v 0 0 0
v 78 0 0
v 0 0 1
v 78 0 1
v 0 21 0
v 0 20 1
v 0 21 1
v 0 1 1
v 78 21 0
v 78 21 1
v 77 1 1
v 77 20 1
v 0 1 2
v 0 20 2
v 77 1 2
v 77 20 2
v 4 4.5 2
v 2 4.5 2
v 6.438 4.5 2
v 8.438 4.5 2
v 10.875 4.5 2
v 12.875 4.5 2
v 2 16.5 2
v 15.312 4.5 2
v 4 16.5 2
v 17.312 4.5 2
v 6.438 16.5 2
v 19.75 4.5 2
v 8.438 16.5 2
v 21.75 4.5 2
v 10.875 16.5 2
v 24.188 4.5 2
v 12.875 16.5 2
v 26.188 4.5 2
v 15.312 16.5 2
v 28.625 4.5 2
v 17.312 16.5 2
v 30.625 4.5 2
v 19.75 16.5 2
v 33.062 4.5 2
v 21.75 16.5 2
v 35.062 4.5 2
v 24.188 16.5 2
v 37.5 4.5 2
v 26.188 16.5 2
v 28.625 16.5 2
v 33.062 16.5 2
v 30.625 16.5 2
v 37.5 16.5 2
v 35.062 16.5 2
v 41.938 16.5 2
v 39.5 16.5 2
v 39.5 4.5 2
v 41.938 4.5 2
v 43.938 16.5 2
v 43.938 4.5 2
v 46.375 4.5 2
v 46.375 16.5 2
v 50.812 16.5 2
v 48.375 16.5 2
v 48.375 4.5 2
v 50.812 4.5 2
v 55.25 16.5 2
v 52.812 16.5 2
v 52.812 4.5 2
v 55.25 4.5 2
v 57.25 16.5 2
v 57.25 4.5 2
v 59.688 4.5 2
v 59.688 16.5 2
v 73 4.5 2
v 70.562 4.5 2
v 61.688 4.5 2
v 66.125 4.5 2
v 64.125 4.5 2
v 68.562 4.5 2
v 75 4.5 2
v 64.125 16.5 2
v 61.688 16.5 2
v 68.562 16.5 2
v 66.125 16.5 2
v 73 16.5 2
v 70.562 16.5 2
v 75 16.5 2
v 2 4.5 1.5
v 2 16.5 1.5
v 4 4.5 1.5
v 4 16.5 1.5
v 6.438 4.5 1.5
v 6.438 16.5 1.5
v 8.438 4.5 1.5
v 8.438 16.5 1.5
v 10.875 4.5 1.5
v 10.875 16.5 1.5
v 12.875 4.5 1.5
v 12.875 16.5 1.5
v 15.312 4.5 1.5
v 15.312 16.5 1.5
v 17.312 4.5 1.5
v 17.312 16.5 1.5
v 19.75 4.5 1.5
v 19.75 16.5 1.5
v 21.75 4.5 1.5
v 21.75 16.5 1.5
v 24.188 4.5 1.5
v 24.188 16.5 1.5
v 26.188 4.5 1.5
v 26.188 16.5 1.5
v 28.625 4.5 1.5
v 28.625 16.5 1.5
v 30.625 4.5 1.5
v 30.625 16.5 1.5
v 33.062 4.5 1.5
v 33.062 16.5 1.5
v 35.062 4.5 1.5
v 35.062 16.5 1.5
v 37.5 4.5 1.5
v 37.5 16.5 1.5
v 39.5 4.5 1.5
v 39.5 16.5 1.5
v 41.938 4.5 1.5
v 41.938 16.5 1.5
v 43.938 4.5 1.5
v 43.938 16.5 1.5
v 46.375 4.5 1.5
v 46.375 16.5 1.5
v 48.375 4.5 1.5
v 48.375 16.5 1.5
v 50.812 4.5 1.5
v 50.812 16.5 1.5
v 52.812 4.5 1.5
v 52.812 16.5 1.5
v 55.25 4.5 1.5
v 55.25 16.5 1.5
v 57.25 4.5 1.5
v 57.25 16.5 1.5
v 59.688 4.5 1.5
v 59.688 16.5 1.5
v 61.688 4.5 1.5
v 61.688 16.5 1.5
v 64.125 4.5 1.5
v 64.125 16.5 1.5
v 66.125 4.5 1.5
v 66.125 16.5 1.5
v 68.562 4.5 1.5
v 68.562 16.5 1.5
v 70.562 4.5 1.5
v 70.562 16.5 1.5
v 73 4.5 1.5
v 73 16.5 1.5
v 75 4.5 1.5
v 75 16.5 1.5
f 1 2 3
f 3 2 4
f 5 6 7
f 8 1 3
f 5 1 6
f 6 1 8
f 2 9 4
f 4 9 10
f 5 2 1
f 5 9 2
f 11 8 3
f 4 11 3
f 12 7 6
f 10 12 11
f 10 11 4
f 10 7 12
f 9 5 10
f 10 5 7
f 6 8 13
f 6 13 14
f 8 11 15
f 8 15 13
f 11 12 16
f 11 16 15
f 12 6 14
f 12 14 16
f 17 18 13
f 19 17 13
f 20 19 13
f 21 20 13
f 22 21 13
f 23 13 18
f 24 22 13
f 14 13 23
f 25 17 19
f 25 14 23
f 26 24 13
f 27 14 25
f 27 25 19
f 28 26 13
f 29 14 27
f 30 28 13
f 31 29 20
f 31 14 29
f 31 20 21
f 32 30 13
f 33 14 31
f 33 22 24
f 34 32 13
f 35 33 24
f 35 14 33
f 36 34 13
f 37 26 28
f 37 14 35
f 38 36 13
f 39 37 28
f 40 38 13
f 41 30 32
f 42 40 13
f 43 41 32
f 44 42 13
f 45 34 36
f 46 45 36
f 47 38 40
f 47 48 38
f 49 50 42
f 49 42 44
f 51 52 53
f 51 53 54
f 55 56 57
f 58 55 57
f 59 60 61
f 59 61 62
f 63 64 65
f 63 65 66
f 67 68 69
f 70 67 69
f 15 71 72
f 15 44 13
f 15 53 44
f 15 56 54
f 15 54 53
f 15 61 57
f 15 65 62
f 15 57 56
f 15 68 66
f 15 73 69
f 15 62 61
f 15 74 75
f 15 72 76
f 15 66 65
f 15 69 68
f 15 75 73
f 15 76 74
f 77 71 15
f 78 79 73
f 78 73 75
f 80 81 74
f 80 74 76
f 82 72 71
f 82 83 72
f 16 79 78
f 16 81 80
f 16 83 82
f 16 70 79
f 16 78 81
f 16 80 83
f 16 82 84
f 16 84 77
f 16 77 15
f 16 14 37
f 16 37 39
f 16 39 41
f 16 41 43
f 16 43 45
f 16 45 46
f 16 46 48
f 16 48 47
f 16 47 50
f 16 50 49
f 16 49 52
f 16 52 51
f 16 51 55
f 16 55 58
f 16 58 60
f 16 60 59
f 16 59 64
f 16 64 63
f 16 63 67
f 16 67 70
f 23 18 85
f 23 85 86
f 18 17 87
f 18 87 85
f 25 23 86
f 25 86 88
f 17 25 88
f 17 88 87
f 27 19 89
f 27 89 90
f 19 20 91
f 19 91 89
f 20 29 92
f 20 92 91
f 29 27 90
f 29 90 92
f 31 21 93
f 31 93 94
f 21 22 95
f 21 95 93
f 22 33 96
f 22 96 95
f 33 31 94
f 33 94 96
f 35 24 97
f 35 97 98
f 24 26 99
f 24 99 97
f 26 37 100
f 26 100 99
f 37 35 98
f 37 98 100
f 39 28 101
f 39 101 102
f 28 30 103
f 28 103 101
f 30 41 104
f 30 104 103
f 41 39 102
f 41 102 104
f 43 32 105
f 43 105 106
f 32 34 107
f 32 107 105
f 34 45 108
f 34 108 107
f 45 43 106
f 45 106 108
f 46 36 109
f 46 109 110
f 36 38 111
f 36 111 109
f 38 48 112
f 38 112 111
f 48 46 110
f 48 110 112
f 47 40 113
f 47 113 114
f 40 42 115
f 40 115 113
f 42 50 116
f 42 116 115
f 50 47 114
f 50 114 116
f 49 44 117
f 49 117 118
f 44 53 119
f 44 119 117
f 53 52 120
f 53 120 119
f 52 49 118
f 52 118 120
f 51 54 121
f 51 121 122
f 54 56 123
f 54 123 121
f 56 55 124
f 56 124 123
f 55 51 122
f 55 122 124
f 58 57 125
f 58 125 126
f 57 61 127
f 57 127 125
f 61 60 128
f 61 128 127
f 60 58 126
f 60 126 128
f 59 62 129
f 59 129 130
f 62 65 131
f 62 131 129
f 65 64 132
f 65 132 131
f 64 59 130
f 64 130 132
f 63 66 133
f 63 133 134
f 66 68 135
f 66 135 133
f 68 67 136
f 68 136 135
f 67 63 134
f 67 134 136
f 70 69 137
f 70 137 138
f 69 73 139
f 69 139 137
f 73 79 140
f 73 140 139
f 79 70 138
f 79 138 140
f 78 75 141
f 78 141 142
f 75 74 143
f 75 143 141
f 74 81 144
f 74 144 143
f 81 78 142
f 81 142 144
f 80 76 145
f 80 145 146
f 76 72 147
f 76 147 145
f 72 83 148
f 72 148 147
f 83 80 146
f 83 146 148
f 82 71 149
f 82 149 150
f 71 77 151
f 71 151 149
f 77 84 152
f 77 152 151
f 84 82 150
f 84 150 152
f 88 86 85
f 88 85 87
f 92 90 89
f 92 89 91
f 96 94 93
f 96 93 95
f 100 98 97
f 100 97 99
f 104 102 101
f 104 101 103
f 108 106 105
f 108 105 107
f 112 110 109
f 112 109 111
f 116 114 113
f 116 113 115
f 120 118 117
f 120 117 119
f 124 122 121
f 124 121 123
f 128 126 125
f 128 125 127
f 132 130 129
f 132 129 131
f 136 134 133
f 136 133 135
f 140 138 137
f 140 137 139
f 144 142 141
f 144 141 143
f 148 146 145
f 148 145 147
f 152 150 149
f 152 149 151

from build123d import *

# Parameters (mm, degrees)
SKETCH_W            = 78
SKETCH_H            = 21
PAD_DEPTH           = 1
SKETCH001_W         = 77
SKETCH001_H         = 19
PAD001_DEPTH        = 1
SKETCH002_W         = 2
SKETCH002_H         = 12
POCKET_DEPTH        = 0.5
LINEARPATTERN_COUNT = 17
LINEARPATTERN_PITCH = 4.4375


with BuildPart() as part:
    # Sketch → Pad (new body)
    with BuildSketch(Plane.XY):
        with Locations((39, 10.5)):
            Rectangle(SKETCH_W, SKETCH_H)
    extrude(amount=PAD_DEPTH)

    # Sketch001 (on Face6 of Pad) → Pad001 (join)
    with BuildSketch(Plane.XY.offset(1)):
        with Locations((38.5, 10.5)):
            Rectangle(SKETCH001_W, SKETCH001_H)
    extrude(amount=PAD001_DEPTH)

    # Sketch002 (on Face11 of Pad001) → Pocket (cut)
    with BuildSketch(Plane.XY.offset(2)):
        with Locations((3, 10.5)):
            Rectangle(SKETCH002_W, SKETCH002_H)
    pocket = extrude(amount=-POCKET_DEPTH, mode=Mode.SUBTRACT)

    # LinearPattern: Pocket ×17
    with Locations(*[(i * LINEARPATTERN_PITCH, 0, 0) for i in range(1, LINEARPATTERN_COUNT)]):
        add(pocket, mode=Mode.SUBTRACT)


solid = part.part
